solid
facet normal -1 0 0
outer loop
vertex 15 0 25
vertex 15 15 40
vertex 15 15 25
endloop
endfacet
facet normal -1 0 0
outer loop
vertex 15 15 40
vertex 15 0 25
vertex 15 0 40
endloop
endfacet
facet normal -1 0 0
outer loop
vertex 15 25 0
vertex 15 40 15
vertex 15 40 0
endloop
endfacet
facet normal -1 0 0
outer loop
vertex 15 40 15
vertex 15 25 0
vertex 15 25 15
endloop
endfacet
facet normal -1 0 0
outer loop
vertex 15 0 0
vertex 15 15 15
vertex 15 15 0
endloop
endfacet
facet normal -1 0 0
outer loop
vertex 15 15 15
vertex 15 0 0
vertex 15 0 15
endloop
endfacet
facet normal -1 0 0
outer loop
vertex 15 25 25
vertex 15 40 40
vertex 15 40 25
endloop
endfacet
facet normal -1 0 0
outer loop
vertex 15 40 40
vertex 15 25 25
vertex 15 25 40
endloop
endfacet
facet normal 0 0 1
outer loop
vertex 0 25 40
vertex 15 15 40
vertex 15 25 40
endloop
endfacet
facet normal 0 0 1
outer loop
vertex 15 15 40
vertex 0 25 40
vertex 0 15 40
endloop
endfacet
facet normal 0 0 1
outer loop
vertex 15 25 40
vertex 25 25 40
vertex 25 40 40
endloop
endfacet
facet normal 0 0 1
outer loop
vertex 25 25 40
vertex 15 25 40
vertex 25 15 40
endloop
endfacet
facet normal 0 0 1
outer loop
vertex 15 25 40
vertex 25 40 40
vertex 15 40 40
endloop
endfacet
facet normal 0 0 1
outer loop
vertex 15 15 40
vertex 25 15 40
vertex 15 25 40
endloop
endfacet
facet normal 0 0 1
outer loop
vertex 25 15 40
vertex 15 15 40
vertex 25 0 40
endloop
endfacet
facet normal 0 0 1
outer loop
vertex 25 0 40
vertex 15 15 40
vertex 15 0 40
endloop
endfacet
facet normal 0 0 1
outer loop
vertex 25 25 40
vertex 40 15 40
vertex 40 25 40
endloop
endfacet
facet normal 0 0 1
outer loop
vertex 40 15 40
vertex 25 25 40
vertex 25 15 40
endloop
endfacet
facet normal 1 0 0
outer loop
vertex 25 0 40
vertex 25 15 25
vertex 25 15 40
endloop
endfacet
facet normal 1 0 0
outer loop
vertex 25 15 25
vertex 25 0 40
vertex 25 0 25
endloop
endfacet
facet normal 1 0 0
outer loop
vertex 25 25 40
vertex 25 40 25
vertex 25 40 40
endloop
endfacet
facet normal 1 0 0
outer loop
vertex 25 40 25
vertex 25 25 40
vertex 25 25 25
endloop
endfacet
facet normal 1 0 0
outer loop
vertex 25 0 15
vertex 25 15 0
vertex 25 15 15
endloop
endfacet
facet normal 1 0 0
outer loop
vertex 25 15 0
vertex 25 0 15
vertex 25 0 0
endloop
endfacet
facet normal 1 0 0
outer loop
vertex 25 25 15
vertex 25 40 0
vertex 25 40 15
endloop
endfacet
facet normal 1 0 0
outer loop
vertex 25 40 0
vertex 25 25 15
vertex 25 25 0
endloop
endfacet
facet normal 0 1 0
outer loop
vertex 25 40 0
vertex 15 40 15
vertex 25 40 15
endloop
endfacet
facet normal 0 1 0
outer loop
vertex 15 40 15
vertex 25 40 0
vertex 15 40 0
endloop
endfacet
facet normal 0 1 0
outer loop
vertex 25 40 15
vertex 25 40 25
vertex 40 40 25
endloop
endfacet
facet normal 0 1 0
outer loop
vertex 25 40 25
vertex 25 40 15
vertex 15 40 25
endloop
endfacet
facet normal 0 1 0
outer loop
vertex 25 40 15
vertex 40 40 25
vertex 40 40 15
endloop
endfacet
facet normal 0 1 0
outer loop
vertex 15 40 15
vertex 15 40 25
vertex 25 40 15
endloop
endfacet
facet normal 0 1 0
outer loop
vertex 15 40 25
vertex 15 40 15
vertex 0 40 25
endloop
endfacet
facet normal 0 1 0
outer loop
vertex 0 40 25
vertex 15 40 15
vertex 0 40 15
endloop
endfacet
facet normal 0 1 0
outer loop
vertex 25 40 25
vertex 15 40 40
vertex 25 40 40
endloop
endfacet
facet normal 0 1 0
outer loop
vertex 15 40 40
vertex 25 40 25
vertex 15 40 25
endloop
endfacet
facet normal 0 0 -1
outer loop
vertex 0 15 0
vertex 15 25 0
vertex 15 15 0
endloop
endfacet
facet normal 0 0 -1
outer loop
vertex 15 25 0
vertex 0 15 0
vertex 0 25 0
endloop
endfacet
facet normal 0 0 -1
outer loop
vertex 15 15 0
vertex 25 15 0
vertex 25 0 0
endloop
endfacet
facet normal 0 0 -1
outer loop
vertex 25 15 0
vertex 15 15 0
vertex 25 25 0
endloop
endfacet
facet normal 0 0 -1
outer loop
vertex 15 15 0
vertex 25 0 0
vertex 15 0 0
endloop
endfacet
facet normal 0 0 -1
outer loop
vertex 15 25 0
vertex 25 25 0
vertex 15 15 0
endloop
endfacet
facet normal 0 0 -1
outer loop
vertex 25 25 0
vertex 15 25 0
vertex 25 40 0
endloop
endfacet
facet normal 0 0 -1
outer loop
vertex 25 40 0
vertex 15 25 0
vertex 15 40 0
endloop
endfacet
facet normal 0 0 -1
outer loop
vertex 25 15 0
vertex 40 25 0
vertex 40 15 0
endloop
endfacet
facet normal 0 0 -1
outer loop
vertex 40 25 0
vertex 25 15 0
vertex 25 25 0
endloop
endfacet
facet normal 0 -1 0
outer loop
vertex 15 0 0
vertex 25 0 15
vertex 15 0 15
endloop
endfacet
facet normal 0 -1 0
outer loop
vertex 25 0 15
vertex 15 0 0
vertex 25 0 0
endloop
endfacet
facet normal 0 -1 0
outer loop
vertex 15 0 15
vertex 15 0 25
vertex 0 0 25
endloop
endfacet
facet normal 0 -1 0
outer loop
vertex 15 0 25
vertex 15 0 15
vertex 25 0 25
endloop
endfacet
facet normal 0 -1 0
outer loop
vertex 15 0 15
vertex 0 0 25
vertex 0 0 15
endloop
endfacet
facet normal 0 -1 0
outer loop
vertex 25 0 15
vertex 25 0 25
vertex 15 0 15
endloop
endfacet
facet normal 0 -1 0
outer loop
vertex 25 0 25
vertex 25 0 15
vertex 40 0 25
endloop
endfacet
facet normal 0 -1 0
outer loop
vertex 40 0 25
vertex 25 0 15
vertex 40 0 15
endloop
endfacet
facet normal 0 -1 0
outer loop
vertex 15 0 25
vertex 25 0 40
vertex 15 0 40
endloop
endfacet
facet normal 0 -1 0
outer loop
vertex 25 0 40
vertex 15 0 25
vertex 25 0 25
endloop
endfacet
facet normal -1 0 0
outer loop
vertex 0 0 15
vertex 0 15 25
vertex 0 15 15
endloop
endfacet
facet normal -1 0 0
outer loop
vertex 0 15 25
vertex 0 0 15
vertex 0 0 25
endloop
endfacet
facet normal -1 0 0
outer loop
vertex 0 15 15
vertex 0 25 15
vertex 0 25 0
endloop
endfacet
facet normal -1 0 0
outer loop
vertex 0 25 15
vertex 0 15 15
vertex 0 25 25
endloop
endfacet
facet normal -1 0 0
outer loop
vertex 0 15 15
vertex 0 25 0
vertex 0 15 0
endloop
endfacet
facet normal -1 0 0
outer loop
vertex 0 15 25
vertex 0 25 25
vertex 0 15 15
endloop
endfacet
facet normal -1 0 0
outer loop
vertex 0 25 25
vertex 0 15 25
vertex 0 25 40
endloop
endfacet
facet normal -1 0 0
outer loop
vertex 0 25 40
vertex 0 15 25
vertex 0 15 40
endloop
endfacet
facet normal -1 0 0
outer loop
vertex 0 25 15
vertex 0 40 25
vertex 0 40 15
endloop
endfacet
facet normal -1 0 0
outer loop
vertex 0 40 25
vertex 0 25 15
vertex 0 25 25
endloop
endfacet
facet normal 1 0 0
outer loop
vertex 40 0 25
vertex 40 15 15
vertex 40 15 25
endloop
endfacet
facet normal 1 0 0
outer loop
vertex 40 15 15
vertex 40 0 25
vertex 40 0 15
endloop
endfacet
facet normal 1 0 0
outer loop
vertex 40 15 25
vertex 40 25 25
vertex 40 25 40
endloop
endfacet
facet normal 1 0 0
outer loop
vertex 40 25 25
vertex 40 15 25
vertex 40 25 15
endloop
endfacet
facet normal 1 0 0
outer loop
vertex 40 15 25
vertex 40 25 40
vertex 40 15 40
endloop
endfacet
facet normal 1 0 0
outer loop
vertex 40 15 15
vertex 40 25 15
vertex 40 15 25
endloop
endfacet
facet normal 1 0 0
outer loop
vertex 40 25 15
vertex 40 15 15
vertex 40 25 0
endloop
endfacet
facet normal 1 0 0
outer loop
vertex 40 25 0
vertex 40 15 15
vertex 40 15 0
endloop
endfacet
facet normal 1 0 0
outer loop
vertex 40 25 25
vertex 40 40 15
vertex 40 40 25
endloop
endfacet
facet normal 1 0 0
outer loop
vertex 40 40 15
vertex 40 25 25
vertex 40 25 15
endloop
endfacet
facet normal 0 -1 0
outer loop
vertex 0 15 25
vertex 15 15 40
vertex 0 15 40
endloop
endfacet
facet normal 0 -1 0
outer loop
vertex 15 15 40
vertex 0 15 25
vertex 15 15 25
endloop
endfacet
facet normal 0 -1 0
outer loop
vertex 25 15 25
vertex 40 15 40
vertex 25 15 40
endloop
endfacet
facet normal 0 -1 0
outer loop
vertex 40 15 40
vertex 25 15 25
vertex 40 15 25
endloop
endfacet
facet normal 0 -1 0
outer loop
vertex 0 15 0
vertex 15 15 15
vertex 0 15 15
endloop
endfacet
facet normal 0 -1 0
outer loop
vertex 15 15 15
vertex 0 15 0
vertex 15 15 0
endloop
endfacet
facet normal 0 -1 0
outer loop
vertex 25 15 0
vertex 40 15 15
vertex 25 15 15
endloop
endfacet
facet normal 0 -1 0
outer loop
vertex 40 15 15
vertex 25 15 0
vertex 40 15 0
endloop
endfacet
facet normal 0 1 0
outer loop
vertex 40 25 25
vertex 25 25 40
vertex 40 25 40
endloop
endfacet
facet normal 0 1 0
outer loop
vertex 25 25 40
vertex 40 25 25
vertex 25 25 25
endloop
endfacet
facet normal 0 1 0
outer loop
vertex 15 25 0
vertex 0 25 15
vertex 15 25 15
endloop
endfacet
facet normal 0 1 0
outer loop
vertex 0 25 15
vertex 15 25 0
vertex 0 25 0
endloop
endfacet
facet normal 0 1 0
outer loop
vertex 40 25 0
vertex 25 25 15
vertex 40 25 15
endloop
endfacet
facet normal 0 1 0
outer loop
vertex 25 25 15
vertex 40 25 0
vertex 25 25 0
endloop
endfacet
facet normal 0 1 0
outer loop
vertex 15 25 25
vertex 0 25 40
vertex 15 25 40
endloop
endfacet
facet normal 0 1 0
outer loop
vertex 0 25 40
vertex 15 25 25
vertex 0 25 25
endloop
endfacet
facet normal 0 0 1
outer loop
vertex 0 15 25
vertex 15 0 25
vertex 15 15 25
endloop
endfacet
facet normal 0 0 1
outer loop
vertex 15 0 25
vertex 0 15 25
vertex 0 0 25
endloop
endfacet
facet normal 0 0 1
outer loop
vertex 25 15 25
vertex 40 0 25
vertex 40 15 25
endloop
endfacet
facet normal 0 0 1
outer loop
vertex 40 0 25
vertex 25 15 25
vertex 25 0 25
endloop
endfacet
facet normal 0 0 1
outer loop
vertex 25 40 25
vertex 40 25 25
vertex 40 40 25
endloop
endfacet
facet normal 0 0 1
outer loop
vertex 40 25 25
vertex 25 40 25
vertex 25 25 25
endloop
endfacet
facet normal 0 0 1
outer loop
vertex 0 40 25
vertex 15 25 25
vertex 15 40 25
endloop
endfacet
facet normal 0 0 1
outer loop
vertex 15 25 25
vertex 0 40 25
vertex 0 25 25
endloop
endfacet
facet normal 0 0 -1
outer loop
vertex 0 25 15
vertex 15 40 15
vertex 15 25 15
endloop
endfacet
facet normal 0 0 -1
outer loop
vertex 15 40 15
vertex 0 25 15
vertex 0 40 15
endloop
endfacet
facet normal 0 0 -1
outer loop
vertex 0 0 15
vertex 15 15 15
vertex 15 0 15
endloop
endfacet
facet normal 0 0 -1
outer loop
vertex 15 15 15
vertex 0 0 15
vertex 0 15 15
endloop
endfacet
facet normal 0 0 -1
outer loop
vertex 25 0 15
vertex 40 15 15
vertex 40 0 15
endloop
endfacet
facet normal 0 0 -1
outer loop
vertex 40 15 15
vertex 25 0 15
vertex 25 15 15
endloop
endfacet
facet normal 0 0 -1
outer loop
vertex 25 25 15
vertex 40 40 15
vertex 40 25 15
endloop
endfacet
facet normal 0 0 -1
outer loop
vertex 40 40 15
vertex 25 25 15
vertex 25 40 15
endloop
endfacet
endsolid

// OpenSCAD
union(){
translate([15, 0, 0]){
cube([10, 40, 40], center=false);
}
translate([0, 15, 0]){
cube([40, 10, 40], center=false);
}
translate([0, 0, 15]){
cube([40, 40, 10], center=false);
}
}
